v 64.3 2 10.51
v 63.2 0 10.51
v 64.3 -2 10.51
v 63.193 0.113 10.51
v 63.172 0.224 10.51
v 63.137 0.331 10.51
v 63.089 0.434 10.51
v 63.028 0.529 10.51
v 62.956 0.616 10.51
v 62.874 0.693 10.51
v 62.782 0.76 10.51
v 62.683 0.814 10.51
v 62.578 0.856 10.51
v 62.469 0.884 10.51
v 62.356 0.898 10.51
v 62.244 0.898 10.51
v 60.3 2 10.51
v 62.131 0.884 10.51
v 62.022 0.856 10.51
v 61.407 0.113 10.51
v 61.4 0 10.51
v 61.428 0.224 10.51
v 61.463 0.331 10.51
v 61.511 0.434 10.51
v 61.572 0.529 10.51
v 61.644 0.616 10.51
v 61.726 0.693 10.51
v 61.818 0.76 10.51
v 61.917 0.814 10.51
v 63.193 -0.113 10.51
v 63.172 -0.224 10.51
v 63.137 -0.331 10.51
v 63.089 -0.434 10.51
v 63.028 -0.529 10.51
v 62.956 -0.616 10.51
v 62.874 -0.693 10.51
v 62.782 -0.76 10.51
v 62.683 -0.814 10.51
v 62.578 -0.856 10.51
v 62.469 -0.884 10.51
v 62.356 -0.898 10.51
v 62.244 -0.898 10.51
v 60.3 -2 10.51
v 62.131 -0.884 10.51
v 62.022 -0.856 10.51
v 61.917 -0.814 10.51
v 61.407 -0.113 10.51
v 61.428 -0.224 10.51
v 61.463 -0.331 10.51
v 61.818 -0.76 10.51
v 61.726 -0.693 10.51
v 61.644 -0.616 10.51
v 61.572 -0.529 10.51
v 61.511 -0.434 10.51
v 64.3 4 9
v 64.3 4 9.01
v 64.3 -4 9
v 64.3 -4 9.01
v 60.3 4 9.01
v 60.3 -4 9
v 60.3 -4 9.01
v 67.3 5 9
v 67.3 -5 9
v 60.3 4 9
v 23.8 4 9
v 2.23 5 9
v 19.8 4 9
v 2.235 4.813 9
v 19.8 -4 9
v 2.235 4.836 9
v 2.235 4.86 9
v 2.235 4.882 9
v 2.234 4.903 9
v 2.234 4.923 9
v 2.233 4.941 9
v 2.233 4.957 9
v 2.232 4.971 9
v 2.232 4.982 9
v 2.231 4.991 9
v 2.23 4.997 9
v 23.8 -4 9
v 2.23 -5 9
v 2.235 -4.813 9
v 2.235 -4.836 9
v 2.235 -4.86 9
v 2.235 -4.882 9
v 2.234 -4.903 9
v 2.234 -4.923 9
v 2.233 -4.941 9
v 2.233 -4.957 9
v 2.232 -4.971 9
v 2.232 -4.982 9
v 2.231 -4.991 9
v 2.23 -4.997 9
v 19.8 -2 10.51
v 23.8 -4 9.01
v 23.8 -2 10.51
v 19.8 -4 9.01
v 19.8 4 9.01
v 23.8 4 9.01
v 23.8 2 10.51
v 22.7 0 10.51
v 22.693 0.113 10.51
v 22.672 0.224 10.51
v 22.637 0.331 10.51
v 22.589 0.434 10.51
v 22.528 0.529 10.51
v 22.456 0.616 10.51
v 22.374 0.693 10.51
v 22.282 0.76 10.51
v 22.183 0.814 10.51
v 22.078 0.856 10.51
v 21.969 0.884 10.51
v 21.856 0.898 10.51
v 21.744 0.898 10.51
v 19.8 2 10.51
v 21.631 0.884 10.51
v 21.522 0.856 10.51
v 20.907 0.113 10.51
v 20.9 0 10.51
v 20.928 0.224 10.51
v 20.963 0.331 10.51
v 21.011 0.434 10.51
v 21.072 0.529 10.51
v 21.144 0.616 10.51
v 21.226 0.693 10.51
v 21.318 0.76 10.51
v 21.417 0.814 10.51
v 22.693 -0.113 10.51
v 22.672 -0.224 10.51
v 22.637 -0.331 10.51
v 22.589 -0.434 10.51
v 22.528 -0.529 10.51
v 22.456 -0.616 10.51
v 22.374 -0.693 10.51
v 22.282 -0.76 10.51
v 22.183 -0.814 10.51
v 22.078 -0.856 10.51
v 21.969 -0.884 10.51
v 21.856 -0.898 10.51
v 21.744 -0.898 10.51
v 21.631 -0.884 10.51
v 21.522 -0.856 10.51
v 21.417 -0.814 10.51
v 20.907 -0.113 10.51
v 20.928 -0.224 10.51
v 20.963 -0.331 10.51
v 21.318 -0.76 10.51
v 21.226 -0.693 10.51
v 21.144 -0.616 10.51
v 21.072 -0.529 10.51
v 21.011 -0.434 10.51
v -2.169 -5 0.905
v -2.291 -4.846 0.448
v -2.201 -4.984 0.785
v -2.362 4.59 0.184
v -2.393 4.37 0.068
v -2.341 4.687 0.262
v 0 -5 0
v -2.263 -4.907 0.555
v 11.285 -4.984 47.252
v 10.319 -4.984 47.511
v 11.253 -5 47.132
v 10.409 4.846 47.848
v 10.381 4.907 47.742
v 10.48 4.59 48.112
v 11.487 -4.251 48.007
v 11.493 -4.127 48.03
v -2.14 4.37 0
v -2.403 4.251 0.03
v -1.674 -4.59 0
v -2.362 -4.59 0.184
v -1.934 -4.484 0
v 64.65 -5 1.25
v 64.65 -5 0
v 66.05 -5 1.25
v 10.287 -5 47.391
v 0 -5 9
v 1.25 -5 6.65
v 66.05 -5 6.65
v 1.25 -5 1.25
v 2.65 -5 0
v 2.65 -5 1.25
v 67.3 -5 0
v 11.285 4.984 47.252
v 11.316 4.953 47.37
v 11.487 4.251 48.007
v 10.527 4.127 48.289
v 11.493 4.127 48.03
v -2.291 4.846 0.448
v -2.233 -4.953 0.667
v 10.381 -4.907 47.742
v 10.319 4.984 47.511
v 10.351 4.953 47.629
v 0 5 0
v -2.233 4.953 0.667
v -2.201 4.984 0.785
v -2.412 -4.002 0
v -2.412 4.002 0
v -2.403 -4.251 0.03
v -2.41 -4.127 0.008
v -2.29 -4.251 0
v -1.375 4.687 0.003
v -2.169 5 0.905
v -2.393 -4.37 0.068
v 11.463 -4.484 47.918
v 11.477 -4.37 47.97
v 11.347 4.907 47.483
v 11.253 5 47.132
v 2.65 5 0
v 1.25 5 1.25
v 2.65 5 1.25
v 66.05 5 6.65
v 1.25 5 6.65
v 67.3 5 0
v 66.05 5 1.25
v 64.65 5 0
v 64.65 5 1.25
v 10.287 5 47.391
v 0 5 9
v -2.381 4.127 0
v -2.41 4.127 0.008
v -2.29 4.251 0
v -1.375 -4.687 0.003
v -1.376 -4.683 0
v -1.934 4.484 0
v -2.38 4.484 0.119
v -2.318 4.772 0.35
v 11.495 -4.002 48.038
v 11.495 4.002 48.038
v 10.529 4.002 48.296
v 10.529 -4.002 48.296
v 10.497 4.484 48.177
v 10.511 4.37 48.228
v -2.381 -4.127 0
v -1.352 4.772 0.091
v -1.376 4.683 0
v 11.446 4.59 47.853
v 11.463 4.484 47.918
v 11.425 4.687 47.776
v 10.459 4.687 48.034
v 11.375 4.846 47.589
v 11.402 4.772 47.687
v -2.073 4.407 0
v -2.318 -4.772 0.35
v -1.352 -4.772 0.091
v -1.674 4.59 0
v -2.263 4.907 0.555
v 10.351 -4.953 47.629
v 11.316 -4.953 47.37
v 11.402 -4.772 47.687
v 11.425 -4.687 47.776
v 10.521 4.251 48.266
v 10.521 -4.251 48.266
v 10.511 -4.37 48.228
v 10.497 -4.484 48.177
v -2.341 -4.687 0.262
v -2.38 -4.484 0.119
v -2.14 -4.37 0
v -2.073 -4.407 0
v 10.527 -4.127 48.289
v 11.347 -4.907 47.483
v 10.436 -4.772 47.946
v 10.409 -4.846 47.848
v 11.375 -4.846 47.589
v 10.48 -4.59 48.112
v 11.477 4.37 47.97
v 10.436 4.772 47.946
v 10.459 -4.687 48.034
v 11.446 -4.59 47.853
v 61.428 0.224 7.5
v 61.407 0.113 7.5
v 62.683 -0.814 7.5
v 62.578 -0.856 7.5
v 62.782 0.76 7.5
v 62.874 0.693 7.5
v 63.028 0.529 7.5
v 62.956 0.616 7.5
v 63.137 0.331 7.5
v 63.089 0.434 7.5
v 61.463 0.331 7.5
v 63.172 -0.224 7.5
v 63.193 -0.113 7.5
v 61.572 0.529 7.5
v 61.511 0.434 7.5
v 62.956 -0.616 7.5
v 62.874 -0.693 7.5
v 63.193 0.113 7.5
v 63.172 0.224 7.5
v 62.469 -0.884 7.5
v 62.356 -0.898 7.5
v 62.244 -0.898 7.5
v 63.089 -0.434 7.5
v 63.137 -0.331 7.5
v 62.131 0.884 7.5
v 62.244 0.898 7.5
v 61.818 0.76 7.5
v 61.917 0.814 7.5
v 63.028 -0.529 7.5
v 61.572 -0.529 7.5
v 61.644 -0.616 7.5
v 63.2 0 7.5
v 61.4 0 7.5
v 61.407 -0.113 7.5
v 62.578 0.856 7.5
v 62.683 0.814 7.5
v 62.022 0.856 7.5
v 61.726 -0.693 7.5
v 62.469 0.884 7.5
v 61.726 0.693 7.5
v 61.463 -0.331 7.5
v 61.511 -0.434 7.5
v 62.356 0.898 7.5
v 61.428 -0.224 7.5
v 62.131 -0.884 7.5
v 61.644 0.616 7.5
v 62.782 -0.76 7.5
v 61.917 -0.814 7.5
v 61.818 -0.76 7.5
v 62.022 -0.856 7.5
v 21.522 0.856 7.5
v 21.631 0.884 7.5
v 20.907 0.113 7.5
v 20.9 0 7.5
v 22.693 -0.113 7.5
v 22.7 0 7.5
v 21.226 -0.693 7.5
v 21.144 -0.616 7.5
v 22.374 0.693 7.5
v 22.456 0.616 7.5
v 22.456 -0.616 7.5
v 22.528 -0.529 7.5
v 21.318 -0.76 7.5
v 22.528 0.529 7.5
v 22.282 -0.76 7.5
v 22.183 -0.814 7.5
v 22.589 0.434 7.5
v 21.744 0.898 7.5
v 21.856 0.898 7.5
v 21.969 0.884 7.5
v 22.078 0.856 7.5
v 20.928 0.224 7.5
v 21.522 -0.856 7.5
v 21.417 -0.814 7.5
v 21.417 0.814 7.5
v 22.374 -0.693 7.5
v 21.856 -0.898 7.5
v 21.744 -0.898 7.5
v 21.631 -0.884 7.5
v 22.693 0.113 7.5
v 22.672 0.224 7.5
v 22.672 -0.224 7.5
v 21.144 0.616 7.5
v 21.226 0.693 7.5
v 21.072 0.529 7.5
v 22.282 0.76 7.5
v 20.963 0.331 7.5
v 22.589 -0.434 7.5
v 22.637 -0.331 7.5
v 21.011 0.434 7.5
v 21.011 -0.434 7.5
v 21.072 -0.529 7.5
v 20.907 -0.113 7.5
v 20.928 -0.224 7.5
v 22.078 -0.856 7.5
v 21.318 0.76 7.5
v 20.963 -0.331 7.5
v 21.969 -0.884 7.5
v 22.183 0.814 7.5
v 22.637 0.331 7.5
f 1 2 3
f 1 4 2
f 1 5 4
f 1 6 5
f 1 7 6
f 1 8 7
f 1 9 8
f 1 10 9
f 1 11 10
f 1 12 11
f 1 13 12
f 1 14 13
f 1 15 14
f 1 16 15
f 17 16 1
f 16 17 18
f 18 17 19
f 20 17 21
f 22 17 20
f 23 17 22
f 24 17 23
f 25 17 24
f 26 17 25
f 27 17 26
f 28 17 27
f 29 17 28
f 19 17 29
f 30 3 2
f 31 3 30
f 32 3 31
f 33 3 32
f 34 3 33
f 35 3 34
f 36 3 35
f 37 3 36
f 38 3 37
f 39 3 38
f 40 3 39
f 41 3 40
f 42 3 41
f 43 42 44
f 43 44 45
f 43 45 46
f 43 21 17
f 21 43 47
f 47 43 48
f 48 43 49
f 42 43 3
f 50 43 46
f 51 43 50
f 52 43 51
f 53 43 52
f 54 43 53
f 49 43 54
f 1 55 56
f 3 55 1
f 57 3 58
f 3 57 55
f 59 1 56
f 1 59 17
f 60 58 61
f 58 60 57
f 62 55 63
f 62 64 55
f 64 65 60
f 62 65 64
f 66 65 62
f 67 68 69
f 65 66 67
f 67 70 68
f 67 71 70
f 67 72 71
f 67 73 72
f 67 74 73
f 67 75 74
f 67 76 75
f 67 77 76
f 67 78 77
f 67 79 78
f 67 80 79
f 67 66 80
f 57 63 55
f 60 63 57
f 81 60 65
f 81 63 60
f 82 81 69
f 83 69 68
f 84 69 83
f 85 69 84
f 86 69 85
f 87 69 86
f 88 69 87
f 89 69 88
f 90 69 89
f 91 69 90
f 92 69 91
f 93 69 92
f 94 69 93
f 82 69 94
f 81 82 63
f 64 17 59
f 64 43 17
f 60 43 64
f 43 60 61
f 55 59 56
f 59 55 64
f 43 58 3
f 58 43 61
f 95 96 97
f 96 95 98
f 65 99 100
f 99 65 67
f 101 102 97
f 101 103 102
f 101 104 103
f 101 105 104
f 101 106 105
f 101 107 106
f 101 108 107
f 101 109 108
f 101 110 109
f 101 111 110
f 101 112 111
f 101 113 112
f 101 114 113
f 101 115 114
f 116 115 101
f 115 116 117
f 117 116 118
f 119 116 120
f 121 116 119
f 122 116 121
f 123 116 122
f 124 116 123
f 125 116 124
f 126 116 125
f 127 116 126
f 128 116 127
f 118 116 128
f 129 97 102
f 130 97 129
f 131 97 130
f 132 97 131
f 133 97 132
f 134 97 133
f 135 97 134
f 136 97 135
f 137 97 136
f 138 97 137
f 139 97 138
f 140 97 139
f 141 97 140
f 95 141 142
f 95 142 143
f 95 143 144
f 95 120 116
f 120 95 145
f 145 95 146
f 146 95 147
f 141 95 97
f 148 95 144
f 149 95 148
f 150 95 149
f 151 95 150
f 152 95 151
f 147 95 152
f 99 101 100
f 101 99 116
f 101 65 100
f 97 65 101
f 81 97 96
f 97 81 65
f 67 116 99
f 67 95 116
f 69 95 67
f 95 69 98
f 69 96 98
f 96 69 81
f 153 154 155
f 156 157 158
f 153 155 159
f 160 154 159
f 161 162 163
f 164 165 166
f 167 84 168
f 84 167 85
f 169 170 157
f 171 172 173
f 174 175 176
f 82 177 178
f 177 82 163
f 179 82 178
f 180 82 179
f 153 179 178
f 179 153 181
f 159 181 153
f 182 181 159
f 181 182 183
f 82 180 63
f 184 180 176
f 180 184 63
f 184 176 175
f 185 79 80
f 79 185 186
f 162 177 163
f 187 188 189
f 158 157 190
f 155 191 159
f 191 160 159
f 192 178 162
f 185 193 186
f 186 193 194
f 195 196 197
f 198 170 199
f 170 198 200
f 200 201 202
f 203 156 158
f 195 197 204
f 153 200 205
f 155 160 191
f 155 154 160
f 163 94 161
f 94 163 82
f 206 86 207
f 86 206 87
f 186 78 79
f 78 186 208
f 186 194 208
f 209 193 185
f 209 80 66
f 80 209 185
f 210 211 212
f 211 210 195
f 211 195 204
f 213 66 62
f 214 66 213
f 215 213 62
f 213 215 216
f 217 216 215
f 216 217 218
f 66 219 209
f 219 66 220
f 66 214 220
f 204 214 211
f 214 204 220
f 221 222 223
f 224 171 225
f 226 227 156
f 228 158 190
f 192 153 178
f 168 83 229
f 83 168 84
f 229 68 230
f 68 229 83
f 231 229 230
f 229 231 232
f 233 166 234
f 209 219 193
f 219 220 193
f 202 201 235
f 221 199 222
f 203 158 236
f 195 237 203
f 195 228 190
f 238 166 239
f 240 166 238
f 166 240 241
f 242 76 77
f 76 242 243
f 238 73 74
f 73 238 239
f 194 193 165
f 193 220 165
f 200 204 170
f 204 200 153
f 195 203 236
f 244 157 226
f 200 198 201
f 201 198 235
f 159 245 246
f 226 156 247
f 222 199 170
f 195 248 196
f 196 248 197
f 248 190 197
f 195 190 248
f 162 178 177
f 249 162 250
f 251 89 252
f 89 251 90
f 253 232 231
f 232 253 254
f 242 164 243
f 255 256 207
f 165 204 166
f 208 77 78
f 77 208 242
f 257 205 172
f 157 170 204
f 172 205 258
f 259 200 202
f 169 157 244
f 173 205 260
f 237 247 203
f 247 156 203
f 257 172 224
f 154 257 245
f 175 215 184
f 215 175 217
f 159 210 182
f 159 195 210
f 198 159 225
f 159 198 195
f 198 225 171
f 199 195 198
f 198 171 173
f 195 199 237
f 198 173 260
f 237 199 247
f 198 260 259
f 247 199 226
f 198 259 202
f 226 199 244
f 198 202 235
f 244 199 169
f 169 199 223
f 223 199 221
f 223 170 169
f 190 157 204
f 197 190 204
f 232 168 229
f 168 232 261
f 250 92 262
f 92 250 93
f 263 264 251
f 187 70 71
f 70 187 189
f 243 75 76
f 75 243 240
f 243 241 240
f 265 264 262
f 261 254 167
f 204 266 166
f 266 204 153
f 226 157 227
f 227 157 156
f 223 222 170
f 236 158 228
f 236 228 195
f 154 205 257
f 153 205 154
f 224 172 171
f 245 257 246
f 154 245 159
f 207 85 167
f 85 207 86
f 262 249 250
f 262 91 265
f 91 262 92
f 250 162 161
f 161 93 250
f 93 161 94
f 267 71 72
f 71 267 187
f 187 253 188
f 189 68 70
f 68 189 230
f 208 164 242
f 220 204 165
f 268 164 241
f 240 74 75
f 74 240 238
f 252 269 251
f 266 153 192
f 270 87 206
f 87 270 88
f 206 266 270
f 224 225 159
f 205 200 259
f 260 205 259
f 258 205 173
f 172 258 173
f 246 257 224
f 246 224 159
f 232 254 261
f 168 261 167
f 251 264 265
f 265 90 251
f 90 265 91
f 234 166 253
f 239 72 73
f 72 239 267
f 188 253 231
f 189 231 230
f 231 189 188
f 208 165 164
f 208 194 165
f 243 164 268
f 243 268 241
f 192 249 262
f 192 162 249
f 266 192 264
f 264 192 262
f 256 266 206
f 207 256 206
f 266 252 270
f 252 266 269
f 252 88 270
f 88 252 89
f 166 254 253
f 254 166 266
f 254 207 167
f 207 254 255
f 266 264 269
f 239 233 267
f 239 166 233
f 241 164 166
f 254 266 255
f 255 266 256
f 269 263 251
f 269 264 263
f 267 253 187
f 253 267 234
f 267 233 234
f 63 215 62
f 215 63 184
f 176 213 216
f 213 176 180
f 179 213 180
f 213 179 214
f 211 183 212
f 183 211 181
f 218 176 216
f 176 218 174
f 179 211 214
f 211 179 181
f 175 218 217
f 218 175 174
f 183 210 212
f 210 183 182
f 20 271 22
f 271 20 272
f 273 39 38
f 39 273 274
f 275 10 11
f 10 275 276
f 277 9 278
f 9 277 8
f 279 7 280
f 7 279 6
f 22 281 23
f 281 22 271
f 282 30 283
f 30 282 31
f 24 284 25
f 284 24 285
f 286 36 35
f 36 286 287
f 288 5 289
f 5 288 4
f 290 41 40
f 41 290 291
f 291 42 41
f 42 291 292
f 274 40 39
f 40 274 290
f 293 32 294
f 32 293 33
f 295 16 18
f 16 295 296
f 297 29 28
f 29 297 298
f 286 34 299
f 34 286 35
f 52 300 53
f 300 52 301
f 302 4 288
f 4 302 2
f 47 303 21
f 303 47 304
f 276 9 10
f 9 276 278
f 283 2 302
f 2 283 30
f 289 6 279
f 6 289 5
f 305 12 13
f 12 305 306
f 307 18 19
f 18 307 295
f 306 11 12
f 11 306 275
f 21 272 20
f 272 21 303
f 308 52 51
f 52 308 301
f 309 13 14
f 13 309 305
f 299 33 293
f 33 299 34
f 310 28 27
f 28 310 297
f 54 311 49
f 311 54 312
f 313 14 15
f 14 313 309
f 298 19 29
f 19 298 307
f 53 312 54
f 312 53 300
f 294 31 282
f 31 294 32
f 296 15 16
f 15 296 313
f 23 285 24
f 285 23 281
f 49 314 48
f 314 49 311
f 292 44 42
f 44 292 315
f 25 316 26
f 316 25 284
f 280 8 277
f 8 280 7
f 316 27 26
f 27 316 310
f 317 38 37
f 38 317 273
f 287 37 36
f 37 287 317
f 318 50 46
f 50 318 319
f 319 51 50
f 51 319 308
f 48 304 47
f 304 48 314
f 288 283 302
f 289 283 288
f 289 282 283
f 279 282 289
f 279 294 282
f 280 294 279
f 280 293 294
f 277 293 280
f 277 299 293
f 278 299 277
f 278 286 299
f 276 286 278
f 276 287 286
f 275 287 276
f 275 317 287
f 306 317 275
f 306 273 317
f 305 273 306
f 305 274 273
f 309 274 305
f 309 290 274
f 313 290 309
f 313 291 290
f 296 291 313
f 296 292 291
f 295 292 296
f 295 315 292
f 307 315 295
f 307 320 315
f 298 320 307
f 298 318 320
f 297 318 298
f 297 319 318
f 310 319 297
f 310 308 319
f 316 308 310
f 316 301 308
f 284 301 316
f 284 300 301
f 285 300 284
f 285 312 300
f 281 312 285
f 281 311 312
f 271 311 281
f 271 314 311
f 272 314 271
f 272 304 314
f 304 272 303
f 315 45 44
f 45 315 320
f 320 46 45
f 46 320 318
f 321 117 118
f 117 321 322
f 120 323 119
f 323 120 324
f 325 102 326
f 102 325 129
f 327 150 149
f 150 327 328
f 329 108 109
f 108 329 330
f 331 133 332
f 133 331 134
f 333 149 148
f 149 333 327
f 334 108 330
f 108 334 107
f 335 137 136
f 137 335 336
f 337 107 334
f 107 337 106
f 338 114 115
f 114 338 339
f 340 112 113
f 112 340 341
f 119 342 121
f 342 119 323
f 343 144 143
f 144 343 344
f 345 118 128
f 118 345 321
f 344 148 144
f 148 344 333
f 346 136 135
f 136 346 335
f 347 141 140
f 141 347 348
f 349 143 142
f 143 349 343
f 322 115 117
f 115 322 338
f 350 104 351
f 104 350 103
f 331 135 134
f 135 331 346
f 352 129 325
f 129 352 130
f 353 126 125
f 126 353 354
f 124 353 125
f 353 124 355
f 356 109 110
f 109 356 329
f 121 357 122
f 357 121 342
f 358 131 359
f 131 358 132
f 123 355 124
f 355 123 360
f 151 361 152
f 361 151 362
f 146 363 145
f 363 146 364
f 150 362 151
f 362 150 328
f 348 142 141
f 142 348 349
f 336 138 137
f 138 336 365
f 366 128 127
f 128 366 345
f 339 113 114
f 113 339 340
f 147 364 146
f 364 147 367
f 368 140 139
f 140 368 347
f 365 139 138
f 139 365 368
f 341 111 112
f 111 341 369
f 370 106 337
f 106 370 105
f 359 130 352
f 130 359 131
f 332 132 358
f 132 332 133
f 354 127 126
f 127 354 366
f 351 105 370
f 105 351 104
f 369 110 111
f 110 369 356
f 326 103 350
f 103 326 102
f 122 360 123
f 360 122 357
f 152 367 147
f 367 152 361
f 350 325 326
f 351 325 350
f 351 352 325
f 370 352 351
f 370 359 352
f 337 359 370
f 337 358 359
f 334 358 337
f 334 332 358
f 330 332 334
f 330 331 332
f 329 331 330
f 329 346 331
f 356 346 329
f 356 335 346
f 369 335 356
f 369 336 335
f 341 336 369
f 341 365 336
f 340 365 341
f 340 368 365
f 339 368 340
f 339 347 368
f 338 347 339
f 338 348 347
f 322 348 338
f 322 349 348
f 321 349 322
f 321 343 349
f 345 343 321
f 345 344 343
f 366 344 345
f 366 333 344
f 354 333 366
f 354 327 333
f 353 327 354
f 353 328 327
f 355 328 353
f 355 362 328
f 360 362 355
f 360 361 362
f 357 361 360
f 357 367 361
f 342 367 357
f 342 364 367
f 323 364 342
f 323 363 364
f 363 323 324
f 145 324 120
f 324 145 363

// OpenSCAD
// file: modules/scad-utils/mirror.scad
// Copyright (c) 2013 Oskar Linde. All rights reserved.
// License: BSD
//
// This library contains simple mirroring functions
//
// mirror_x()
// mirror_y()
// mirror_z()


module mirror_x() {
  union() {
    child();
    scale([-1,1,1]) child();
  }
}

module mirror_y() {
  union() {
    child();
    scale([1,-1,1]) child();
  }
}

module mirror_z() {
  union() {
    child();
    scale([1,1,-1]) child();
  }
}
// file: scad-utils/mirror.scad
// Laser Tunnel -- Angled Mirror Holder
// Adrian McCarthy 2022

// A larger angle makes a wider cone of light. (degrees)
Angle = 5; // [3:1:20]

// The mirror should not be wider than the hub of the fan. (mm)
Mirror_Diameter = 25.4; // [20:0.2:27]

// The mirror should be thin and light. (mm)
Mirror_Thickness = 1.75; // [1:0.25:2]

// Some dimensions may be optimized for your printer's nozzle size, but the default value should work for most. (mm)
Nozzle_Diameter = 0.4;  // [0.1:0.1:0.8]

module angled_mirror_holder(angle=5, mirror_d=25.4, mirror_th=1.75, nozzle_d=0.4) {
    h = mirror_d;
    inner_d = mirror_d + nozzle_d;
    outer_d = inner_d + 2;
    box = sqrt(2)*outer_d;
    intersection() {
        r = inner_d/2;
        translate([r, 0, 0]) rotate([0, angle, 0]) translate([-r, 0, 0])
        difference() {
            translate([0, 0, mirror_th-h]) cylinder(d=outer_d, h=h);
            translate([0, 0, 0.1]) cylinder(d=inner_d, h=h);
        }

        translate([-box/2, -box/2, 0]) cube(box);
    }
}

angled_mirror_holder(Angle, Mirror_Diameter, Mirror_Thickness, Nozzle_Diameter, $fn=92);
// file: modules/opiz_mount.scad
include <scad-utils/mirror.scad>

include <./lcd_holder_base.scad>

OPIZ_HOLES_BETWEEN_X=40.5;
OPIZ_HOLES_BETWEEN_Y=42;

OPIZ_MOUNT_X=4;
OPIZ_MOUNT_Z=1.5;
OPIZ_MOUNT_Y=OPIZ_MOUNT_X+4;

module opiz_mount_holes() {
  mirror_x()
  translate([OPIZ_HOLES_BETWEEN_X/2, 0, -1.5]) 
  cylinder(d=1.8, h=10, center=!true);
}

module opiz_mount_base() {
  mirror_x()
  translate([OPIZ_HOLES_BETWEEN_X/2, 0, 0]){
    // trapezoid
    hull(){
      // top
      translate([0, 0, OPIZ_MOUNT_Z])
      linear_extrude(height=0.01, center=!true, convexity=10, twist=0)
      square(size=[OPIZ_MOUNT_X, OPIZ_MOUNT_X], center=true);

      // bottom
      linear_extrude(height=0.01, center=!true, convexity=10, twist=0)
      square(size=[OPIZ_MOUNT_X, OPIZ_MOUNT_Y], center=true);
    }
  }
}

module opiz_mount(holes=false) {
  translate([-OPIZ_HOLES_BETWEEN_X/2 - OPIZ_MOUNT_X/2 + HOLDER_X - 3, 0, HOLDER_Z])
  if (holes){
    opiz_mount_holes();
  }else{
    opiz_mount_base();
  }
}
// file: modules/lcd_holder_base.scad
include <./lcd.scad>

HOLDER_X=LCD_X+3;
HOLDER_Y=10;
HOLDER_Z=9;
HOLDER_LCD_BOTTOM_T=1.5;
HOLDER_FRONT_T=1.5;

module holder_base() {
  translate([HOLDER_X/2, 0, HOLDER_Z/2]) 
  cube(size=[HOLDER_X, HOLDER_Y, HOLDER_Z], center=true);
}

module holder_diff() {
  // space for LCD
  translate([HOLDER_LCD_BOTTOM_T, 0, HOLDER_FRONT_T]) 
  lcd(0.5);

  // window for LCD
  LCD_CENTER_X=LCD_X/2 + HOLDER_LCD_BOTTOM_T;
  translate([LCD_CENTER_X, 0, 0]) 
  cube(size=[LCD_DISP_X+4, HOLDER_Y*2, 3], center=true);
}
// file: modules/lcd.scad
LCD_X=64.3;
LCD_Y=232.0;
LCD_Z=4.9;
LCD_DISP_X=58;

module lcd(margin=0, draw_display_region=false) {
  translate([LCD_X/2, 0, LCD_Z/2]){
    cube(size=[LCD_X+margin, LCD_Y+margin, LCD_Z+margin], center=true);

    if(draw_display_region){
      translate([0, -2, 0]) 
      color("green", 0.5)
      cube(size=[LCD_DISP_X, LCD_Y-8, LCD_Z], center=true);
    }
  }
}
// file: scad-utils/morphology.scad
// Copyright (c) 2013 Oskar Linde. All rights reserved.
// License: BSD
//
// This library contains basic 2D morphology operations
//
// outset(d=1)            - creates a polygon at an offset d outside a 2D shape
// inset(d=1)             - creates a polygon at an offset d inside a 2D shape
// fillet(r=1)            - adds fillets of radius r to all concave corners of a 2D shape
// rounding(r=1)          - adds rounding to all convex corners of a 2D shape
// shell(d,center=false)  - makes a shell of width d along the edge of a 2D shape
//                        - positive values of d places the shell on the outside
//                        - negative values of d places the shell on the inside
//                        - center=true and positive d places the shell centered on the edge

module outset(d=1) {
	// Bug workaround for older OpenSCAD versions
	if (version_num() < 20130424) render() outset_extruded(d) children();
	else minkowski() {
		circle(r=d);
		children();
	}
}

module outset_extruded(d=1) {
   projection(cut=true) minkowski() {
        cylinder(r=d);
        linear_extrude(center=true) children();
   }
}

module inset(d=1) {
	 render() inverse() outset(d=d) inverse() children();
}

module fillet(r=1) {
	inset(d=r) render() outset(d=r) children();
}

module rounding(r=1) {
	outset(d=r) inset(d=r) children();
}

module shell(d,center=false) {
	if (center && d > 0) {
		difference() {
			outset(d=d/2) children();
			inset(d=d/2) children();
		}
	}
	if (!center && d > 0) {
		difference() {
			outset(d=d) children();
			children();
		}
	}
	if (!center && d < 0) {
		difference() {
			children();
			inset(d=-d) children();
		}
	}
	if (d == 0) children();
}


// Below are for internal use only

module inverse() {
	difference() {
		square(1e5,center=true);
		children();
	}
}


// TEST CODE

use <mirror.scad>

module arrow(l=1,w=.6,t=0.15) {
	mirror_y() polygon([[0,0],[l,0],[l-w/2,w/2],[l-w/2-sqrt(2)*t,w/2],[l-t/2-sqrt(2)*t,t/2],[0,t/2]]);
}

module shape() {
	polygon([[0,0],[1,0],[1.5,1],[2.5,1],[2,-1],[0,-1]]);
}

if(0) assign($fn=32) {

	for (p = [0:10*3-1]) assign(o=floor(p/3)) {
		translate([(p%3)*2.5,-o*3]) {
			//%if (p % 3 == 1) translate([0,0,1]) shape();
			if (p % 3 == 0) shape();
			if (p % 3 == 1) translate([0.6,0]) arrow();
			if (p % 3 == 2) {
				if (o == 0) inset(d=0.3) shape();
				if (o == 1) outset(d=0.3) shape();
				if (o == 2) rounding(r=0.3) shape();
				if (o == 3) fillet(r=0.3) shape();
				if (o == 4) shell(d=0.3) shape();
				if (o == 5) shell(d=-0.3) shape();
				if (o == 6) shell(d=0.3,center=true) shape();
				if (o == 7) rounding(r=0.3) fillet(r=0.3) shape();
				if (o == 8) shell(d=0.3,center=true) fillet(r=0.3) rounding(r=0.3) shape();
				if (o == 9) shell(d=-0.3) fillet(r=0.3) rounding(r=0.3) shape();
			}
		}
	}
}
// file: _landscapi_stand_base.scad
include <scad-utils/morphology.scad>

include <./modules/lcd.scad>
include <./modules/lcd_holder_base.scad>
include <./modules/opiz_mount.scad>

STAND_X=50;
STAND_Y=HOLDER_Y;
STAND_Z_MIN=1;

module stand(deg) {
  hull() {
    // plane for hull
    translate([0.1/2, 0, HOLDER_Z/2]) 
    cube(size=[0.1, HOLDER_Y, HOLDER_Z], center=true);

    // stand body
    difference(){
      translate([-tan(90-deg) * HOLDER_Z , 0, 0]) 
      rotate([0, 180 - deg, 0]) 
      translate([-STAND_X/2, 0, 0]) 
      linear_extrude(height=STAND_Z_MIN, center=!true, convexity=10, twist=0)
      rounding(r=1)
      square(size=[STAND_X, STAND_Y], center=true);

      // flatten with XY plane
      translate([0, 0, -10/2]) 
      cube(size=[100, STAND_Y+1, 10], center=true);
    } 
  }
}

module landscapi_stand_base(stand_deg=75) {
  difference(){
    union(){
      stand(deg=stand_deg);
      holder_base();

      // Orange Pi Zero mount
      opiz_mount();
    }

    holder_diff();

    // Orange Pi Zero mount (screw holes)
    opiz_mount(holes=true);
  }
}
// main file
include <./_landscapi_stand_base.scad>

$fn=50;

DEG=75;
// LCD
%
translate([HOLDER_LCD_BOTTOM_T, 0, HOLDER_FRONT_T]) 
lcd(margin=0, draw_display_region=true);

landscapi_stand_base(stand_deg=DEG);
